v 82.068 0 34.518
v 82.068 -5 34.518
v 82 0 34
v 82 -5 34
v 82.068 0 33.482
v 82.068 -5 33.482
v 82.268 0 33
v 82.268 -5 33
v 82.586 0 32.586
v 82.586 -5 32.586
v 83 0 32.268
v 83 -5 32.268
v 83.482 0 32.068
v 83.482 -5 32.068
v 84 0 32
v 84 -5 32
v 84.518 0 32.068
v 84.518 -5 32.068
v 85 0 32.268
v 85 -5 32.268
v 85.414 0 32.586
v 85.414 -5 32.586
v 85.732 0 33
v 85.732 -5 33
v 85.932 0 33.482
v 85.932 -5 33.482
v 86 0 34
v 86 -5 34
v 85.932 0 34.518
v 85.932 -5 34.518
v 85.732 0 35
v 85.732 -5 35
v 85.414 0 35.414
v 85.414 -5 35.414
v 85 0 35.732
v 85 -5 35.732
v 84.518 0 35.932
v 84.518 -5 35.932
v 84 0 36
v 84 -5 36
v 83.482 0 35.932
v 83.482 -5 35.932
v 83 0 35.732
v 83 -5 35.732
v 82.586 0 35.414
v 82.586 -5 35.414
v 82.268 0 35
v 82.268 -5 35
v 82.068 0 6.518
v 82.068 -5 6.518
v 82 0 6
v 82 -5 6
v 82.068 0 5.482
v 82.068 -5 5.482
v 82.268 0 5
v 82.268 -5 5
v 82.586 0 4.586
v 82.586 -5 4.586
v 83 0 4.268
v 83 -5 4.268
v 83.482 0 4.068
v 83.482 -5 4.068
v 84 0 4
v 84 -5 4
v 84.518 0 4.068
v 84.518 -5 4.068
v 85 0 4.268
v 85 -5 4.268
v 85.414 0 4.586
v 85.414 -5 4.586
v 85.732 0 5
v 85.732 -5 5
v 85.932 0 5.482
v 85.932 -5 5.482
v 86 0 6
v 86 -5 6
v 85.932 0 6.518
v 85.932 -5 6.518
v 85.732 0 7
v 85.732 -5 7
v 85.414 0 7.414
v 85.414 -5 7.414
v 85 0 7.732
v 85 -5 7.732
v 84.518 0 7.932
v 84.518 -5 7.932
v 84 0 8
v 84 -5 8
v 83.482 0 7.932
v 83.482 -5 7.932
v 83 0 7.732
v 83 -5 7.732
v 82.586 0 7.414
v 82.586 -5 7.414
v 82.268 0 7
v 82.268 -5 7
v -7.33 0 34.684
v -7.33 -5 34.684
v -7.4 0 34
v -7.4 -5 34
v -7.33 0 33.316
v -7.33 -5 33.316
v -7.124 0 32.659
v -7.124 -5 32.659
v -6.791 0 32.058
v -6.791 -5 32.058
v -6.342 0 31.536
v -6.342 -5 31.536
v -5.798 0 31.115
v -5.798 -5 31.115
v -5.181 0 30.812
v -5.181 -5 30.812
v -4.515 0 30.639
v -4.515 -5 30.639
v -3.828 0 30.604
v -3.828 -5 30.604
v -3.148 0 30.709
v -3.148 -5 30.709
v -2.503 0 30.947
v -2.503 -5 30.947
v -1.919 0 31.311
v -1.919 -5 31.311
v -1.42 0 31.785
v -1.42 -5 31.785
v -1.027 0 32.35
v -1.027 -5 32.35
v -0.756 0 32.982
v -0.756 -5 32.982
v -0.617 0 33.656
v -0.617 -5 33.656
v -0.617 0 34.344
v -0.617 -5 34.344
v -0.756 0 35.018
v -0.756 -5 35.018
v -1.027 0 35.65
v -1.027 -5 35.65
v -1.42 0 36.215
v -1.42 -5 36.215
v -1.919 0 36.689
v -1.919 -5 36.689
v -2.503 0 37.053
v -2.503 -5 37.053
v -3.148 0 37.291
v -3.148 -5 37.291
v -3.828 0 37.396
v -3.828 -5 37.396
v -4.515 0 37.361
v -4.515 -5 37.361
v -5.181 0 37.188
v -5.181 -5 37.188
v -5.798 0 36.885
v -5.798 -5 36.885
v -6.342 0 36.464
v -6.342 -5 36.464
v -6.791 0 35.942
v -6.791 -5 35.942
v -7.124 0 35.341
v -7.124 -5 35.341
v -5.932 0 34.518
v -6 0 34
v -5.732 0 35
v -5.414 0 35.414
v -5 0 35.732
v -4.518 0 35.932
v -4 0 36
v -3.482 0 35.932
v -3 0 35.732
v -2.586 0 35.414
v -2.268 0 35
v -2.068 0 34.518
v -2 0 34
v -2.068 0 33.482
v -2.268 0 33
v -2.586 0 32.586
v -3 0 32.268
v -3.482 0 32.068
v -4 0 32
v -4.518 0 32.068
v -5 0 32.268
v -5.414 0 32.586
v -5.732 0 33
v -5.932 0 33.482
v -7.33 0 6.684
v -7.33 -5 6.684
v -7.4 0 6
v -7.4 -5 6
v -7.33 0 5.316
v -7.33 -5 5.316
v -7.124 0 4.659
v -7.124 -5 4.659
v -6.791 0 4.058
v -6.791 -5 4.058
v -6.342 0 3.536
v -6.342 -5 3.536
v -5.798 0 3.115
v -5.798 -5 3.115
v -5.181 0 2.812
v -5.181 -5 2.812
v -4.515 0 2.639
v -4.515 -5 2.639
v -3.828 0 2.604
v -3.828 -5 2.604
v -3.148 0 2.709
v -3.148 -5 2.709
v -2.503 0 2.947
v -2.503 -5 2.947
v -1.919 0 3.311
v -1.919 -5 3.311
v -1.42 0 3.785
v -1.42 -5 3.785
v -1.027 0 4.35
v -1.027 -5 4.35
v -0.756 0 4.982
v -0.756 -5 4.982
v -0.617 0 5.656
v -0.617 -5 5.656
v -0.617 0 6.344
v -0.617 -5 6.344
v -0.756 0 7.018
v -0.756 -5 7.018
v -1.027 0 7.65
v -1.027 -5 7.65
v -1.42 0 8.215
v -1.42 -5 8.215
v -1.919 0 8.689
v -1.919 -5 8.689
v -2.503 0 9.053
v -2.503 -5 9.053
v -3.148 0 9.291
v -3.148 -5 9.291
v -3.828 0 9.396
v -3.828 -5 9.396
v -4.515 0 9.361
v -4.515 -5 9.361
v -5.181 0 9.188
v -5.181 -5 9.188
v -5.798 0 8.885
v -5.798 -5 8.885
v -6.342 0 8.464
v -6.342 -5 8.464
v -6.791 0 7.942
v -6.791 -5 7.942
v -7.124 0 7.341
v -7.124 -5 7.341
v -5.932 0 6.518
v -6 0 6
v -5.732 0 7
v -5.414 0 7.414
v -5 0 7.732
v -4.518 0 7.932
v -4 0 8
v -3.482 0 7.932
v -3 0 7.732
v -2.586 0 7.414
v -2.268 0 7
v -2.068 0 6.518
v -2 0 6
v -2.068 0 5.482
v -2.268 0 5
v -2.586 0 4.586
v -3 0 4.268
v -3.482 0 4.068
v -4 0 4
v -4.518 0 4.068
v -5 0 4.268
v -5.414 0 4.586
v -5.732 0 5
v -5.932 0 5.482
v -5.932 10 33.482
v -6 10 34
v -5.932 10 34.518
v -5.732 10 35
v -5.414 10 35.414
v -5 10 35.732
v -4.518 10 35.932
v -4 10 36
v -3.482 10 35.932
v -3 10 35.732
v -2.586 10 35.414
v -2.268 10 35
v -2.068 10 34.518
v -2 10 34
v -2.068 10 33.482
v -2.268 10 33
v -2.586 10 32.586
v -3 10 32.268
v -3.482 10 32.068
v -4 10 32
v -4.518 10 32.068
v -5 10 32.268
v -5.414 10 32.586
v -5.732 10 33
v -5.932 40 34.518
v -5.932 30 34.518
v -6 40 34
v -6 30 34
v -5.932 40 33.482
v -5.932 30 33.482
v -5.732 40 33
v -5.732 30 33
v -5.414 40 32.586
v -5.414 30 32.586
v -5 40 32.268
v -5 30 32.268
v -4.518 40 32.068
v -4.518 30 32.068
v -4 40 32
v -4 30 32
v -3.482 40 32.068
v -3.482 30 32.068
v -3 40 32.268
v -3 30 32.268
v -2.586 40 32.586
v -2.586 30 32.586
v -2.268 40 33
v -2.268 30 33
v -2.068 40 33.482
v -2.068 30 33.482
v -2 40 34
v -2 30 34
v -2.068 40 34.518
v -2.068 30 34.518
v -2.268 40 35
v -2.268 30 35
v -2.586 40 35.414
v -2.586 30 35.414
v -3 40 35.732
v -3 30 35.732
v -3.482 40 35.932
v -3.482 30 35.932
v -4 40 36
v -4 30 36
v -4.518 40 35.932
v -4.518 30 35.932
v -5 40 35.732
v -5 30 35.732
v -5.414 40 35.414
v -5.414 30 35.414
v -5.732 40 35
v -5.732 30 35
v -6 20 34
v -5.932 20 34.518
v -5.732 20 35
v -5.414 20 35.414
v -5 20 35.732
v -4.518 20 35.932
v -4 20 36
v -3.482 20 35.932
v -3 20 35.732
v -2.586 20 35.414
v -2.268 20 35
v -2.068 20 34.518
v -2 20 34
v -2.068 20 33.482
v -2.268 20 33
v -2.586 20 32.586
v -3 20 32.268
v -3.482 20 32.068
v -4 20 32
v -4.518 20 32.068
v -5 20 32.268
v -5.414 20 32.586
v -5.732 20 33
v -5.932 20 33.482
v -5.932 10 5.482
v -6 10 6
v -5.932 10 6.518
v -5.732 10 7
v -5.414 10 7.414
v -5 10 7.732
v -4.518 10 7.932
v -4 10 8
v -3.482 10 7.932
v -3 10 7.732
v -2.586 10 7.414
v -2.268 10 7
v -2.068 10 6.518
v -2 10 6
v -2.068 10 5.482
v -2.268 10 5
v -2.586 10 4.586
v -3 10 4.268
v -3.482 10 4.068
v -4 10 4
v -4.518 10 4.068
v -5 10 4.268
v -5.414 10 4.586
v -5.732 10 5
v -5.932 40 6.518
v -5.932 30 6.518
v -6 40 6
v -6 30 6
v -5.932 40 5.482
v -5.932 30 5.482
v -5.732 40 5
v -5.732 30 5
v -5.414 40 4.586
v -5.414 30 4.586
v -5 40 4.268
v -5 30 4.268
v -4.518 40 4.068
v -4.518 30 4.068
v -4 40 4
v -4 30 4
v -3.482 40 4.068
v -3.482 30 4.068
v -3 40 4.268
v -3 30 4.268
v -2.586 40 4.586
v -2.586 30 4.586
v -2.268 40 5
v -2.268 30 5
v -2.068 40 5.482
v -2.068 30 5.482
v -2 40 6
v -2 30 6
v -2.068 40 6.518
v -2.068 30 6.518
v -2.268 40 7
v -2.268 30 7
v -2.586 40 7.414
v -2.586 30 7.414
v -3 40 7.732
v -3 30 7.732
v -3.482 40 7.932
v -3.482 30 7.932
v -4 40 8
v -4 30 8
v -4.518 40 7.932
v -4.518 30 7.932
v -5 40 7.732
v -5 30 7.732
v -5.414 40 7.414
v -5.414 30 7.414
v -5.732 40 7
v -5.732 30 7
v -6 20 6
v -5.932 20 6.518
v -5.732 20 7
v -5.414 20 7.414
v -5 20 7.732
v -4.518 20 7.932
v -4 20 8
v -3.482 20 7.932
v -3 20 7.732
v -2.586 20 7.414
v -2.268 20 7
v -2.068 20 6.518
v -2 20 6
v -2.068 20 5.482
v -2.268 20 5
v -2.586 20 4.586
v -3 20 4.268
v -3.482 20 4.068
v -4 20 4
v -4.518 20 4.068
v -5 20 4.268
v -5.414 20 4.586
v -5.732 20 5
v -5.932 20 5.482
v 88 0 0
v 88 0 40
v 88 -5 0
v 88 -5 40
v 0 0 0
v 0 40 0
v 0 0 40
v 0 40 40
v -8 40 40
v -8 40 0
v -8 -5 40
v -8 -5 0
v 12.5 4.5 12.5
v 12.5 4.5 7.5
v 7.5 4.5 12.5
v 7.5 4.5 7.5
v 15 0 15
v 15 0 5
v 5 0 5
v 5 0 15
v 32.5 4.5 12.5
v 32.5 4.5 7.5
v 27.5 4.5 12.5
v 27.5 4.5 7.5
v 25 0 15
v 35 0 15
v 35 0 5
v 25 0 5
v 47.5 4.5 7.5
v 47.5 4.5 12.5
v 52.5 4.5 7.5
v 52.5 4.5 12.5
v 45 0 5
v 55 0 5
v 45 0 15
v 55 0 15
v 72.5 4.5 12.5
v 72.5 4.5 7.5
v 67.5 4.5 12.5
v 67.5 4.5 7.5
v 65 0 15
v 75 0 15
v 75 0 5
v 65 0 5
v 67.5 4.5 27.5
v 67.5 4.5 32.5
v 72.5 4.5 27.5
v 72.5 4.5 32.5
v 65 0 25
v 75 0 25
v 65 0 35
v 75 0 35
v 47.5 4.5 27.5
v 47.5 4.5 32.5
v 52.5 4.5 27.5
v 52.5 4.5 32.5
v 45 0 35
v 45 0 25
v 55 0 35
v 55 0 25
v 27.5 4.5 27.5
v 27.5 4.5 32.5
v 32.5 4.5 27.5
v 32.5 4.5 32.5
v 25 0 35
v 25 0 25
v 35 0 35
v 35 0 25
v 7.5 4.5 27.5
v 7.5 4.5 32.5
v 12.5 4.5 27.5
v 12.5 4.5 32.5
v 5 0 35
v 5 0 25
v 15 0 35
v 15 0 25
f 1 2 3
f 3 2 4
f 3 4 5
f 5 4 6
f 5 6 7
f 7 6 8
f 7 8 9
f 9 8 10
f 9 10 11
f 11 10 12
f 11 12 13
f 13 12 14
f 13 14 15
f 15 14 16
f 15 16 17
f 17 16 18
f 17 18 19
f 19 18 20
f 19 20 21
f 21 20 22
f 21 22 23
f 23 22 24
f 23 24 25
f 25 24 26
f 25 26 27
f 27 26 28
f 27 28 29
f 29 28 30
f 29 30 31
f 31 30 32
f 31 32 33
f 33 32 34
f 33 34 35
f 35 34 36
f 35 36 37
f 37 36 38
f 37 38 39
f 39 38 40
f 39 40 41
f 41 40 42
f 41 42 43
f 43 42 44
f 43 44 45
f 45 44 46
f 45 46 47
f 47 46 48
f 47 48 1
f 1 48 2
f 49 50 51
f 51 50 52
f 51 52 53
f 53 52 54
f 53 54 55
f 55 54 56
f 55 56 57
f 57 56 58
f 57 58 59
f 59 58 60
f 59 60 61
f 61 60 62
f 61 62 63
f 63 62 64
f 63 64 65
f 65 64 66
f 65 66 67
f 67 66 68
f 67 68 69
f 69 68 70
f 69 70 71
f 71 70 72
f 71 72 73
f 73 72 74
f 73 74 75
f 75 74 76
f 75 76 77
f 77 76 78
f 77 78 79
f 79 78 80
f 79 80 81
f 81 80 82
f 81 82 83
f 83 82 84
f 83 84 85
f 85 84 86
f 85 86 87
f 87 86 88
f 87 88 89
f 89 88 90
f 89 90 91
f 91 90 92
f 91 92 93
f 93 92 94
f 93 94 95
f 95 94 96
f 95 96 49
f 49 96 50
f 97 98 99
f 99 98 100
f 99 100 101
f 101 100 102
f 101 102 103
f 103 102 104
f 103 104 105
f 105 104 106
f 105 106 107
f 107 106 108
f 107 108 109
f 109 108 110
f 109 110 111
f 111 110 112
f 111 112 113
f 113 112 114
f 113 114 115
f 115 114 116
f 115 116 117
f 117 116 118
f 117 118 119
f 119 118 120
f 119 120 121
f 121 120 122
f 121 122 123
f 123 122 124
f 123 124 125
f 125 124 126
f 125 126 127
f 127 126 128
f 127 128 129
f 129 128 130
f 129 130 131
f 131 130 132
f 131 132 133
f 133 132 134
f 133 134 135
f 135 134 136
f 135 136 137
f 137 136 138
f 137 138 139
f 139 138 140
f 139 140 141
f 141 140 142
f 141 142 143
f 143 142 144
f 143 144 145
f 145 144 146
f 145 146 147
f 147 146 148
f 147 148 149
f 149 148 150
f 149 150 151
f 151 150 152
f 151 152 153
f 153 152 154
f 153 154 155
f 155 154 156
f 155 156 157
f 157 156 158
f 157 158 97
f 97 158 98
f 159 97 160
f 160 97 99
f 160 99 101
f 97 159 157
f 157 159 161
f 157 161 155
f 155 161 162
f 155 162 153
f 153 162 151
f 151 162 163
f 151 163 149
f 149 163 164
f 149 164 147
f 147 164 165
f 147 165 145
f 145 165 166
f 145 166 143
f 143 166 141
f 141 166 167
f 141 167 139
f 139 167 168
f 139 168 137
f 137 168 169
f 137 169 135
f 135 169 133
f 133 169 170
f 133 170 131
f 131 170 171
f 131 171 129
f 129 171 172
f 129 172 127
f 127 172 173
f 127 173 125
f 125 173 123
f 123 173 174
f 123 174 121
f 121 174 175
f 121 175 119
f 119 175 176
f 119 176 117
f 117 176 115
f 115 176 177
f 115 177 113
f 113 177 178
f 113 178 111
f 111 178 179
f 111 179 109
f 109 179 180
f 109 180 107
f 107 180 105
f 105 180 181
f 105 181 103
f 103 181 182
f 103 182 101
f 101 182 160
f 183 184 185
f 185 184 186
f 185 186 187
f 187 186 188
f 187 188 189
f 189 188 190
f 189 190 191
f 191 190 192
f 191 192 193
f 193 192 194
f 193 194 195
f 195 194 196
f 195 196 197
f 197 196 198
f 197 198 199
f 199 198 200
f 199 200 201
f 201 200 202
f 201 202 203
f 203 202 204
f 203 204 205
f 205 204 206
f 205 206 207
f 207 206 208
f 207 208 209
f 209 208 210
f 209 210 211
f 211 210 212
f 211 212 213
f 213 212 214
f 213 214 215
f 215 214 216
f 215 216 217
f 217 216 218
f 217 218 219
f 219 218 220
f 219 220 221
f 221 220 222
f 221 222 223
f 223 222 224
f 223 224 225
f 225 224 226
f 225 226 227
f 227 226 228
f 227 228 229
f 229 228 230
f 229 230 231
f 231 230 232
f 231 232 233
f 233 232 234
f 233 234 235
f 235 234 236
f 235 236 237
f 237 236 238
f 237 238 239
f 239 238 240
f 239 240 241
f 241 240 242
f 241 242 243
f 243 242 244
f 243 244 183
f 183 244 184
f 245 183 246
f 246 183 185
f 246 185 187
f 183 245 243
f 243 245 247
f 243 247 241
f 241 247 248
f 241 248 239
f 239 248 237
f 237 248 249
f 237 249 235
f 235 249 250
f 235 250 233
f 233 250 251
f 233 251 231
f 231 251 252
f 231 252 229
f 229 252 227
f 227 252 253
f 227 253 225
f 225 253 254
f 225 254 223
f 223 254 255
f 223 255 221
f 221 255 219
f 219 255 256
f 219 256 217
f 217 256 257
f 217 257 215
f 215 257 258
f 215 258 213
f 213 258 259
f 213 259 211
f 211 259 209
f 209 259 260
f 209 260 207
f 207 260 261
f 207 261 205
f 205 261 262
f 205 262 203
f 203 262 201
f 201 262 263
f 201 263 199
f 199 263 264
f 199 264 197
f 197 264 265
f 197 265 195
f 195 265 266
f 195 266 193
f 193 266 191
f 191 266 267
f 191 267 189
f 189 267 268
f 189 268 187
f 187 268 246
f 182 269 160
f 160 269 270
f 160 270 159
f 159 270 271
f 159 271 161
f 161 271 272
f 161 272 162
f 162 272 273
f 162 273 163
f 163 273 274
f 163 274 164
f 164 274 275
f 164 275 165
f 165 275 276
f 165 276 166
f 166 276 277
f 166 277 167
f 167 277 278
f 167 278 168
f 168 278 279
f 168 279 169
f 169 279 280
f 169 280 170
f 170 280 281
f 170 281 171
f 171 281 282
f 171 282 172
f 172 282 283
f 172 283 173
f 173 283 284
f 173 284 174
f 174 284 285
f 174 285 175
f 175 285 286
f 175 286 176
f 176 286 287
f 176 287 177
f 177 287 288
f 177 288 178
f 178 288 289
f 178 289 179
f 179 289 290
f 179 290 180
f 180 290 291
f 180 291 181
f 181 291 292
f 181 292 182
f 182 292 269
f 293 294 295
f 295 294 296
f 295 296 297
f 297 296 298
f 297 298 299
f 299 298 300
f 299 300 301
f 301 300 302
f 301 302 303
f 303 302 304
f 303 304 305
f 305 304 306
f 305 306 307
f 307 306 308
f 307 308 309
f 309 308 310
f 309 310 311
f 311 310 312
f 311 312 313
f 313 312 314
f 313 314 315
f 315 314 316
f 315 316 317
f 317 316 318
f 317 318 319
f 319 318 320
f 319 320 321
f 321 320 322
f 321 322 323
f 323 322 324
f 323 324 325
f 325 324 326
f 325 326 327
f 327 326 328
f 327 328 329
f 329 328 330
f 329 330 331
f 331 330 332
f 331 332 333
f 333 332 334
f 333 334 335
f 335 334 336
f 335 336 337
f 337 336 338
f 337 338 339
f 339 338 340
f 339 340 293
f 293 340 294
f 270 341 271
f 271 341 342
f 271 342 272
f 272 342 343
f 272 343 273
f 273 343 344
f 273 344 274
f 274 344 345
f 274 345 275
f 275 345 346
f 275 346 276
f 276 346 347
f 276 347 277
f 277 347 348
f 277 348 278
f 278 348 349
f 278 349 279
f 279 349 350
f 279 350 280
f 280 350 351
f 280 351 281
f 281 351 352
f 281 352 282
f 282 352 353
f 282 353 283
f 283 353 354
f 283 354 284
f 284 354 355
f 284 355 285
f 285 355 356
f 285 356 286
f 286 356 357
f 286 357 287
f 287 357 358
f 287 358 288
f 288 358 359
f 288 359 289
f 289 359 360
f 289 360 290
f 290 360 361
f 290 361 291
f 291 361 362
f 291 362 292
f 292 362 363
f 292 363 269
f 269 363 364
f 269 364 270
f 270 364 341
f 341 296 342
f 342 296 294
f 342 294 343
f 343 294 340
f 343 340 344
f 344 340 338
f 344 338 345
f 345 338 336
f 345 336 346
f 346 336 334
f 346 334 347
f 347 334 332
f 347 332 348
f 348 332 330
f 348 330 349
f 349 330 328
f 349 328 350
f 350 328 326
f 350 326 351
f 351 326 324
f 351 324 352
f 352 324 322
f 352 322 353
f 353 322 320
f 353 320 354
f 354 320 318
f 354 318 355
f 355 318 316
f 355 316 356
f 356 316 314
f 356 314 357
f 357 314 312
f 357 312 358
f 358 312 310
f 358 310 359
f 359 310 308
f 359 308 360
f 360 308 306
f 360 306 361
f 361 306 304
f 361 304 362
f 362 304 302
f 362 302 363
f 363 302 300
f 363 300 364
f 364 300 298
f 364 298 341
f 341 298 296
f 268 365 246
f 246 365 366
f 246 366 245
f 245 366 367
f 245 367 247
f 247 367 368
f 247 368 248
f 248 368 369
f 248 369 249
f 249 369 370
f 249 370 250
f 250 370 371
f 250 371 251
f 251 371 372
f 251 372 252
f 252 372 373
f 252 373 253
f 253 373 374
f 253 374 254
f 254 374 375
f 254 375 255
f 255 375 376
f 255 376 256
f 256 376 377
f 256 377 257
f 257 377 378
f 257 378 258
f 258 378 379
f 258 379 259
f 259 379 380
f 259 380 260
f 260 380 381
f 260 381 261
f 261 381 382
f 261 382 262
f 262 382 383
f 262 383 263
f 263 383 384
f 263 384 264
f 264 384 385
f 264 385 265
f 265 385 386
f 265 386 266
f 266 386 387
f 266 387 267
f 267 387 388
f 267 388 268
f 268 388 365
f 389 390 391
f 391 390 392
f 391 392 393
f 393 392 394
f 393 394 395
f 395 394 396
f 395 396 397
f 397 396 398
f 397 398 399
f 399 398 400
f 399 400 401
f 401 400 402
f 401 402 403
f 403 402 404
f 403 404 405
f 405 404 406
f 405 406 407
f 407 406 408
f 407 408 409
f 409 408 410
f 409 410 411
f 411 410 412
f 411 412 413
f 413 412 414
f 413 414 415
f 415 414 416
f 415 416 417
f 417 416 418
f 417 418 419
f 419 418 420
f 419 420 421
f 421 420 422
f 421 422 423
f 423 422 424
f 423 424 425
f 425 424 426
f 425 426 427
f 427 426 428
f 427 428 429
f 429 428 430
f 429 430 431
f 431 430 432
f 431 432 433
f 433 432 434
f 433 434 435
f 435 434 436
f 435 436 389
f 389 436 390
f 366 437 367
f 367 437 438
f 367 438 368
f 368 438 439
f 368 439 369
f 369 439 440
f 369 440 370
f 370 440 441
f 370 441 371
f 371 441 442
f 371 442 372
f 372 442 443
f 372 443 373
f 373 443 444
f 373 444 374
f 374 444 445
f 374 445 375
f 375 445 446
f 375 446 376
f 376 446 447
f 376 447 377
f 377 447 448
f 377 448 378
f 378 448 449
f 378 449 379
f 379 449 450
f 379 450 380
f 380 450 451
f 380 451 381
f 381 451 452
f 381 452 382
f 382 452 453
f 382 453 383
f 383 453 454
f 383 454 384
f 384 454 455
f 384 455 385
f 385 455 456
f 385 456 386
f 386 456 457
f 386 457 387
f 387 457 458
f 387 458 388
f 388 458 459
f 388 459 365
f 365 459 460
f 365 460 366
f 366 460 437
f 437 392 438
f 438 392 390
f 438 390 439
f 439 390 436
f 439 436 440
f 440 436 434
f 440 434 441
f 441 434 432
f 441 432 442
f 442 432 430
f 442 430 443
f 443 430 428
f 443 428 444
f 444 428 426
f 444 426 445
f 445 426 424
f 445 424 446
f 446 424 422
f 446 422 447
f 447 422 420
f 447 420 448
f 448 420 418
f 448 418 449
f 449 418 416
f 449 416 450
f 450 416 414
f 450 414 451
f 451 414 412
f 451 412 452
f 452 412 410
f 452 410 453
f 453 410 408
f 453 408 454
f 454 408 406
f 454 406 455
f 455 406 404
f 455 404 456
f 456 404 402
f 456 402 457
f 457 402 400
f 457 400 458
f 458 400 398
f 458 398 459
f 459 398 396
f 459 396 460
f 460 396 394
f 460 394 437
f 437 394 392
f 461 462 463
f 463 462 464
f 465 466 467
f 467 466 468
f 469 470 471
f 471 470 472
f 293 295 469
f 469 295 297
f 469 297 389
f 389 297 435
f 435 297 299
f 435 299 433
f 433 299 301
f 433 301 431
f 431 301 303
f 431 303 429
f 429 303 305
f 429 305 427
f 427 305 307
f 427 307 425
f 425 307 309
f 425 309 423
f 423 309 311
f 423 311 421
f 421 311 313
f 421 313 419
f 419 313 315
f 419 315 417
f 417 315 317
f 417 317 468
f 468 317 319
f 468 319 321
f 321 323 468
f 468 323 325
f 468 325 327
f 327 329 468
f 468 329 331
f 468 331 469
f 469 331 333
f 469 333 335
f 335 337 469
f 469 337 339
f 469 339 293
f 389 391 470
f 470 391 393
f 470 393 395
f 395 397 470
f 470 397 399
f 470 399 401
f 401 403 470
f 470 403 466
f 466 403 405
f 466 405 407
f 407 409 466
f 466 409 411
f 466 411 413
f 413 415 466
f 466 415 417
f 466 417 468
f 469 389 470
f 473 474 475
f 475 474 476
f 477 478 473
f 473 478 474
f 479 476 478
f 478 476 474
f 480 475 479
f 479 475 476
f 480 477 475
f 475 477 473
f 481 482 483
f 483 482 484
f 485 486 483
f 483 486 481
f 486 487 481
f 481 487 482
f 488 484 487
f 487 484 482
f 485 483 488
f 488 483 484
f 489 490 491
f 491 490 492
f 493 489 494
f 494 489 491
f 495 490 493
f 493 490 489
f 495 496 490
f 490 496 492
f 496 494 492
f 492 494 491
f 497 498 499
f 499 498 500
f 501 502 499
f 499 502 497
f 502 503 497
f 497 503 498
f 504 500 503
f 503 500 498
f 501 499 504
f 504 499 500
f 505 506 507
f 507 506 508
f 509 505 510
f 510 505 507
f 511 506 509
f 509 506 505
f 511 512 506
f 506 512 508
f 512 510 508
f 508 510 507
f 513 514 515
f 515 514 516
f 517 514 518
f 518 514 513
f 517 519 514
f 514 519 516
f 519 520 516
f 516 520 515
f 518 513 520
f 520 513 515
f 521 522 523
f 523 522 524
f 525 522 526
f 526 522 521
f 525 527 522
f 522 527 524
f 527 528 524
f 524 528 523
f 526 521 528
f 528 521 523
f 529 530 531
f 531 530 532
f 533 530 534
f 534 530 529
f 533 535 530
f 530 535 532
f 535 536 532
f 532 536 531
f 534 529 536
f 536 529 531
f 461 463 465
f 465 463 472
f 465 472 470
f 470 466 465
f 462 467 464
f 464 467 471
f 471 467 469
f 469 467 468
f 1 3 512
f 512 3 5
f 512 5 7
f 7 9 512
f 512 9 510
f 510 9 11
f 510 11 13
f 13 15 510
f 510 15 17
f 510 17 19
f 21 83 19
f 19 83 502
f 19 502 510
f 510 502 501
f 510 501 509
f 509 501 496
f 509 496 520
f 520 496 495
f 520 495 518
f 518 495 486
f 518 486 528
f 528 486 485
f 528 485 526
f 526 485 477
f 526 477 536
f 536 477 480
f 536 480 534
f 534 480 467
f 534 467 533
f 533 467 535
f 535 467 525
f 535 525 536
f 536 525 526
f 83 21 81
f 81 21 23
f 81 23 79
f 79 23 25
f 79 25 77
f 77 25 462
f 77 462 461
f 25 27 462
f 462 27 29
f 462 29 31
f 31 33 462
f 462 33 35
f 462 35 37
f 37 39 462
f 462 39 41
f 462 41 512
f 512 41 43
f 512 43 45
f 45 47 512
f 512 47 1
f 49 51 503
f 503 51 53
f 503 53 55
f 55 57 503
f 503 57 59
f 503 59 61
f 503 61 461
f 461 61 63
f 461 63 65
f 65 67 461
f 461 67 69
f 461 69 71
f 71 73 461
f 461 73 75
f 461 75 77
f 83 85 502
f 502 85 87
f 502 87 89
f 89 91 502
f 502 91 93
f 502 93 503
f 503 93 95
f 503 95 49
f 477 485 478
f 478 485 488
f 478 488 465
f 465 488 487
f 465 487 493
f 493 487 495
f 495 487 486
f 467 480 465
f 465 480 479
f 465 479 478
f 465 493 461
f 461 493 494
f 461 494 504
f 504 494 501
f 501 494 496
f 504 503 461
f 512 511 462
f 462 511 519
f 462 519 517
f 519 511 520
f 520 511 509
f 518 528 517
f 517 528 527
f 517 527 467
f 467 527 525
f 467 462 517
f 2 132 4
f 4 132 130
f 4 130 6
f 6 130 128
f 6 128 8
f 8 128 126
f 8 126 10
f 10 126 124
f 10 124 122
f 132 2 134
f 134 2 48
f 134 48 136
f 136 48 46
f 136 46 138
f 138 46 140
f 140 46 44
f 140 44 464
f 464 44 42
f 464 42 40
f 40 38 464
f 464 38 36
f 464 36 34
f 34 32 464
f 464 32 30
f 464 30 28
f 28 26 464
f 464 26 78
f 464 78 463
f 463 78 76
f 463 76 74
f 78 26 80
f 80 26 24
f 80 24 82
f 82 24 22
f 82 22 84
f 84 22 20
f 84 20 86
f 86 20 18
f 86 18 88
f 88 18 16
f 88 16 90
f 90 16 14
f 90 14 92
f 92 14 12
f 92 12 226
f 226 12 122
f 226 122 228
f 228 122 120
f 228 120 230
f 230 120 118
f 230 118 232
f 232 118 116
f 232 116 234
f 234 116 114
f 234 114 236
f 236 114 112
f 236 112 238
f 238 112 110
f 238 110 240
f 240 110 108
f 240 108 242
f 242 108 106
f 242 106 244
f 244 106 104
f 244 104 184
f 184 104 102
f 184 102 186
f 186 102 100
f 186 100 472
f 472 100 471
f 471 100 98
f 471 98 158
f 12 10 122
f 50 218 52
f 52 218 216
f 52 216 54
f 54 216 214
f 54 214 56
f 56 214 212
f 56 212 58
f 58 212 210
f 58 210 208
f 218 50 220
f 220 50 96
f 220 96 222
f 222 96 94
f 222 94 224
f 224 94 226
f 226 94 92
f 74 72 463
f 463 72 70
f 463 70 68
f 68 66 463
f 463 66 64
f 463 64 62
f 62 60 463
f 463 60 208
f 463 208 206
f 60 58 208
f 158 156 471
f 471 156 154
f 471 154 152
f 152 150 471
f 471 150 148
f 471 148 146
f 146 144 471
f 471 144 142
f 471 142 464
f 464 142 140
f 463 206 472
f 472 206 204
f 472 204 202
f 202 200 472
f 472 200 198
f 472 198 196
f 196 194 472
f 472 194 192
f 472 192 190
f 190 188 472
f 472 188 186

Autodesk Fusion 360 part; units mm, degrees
sketch "baseplate" plane through (0, 0, 0) normal (0, 1, 0) x (1, 0, 0)
  line L0 (0, 0) -> (80, 0)
  line L1 (80, 0) -> (80, -40)
  line L2 (80, -40) -> (0, -40)
  line L3 (0, -40) -> (0, 0)
  dimension "d1" = 80
  dimension "d2" = 40
sketch "pryamid_base" plane through (0, 0, 0) normal (0, 1, 0) x (1, 0, 0)
  line L0 (5, -35) -> (15, -35)
  line L1 (15, -35) -> (15, -25)
  line L2 (15, -25) -> (5, -25)
  line L3 (5, -25) -> (5, -35)
  line L4 (35, -35) -> (35, -25)
  line L5 (35, -25) -> (25, -25)
  line L6 (25, -35) -> (35, -35)
  line L7 (25, -25) -> (25, -35)
  line L8 (75, -35) -> (75, -25)
  line L9 (45, -35) -> (55, -35)
  line L10 (55, -25) -> (45, -25)
  line L11 (65, -25) -> (65, -35)
  line L12 (65, -35) -> (75, -35)
  line L13 (55, -35) -> (55, -25)
  line L14 (45, -25) -> (45, -35)
  line L15 (75, -25) -> (65, -25)
  line L16 (35, -5) -> (25, -5)
  line L17 (35, -15) -> (35, -5)
  line L18 (15, -5) -> (5, -5)
  line L19 (25, -5) -> (25, -15)
  line L20 (45, -15) -> (55, -15)
  line L21 (55, -15) -> (55, -5)
  line L22 (5, -5) -> (5, -15)
  line L23 (45, -5) -> (45, -15)
  line L24 (75, -15) -> (75, -5)
  line L25 (65, -5) -> (65, -15)
  line L26 (75, -5) -> (65, -5)
  line L27 (55, -5) -> (45, -5)
  line L28 (65, -15) -> (75, -15)
  line L29 (5, -15) -> (15, -15)
  line L30 (15, -15) -> (15, -5)
  line L31 (25, -15) -> (35, -15)
  dimension "d3" = 10
  dimension "d4" = 10
  dimension "d5" = 10
  dimension "d6" = 10
  dimension "d7" = 10
  dimension "d8" = 10
  dimension "d9" = 10
  dimension "d10" = 10
  dimension "d11" = 10
  dimension "d12" = 10
  dimension "d13" = 10
  dimension "d14" = 10
  dimension "d15" = 10
  dimension "d16" = 10
  dimension "d17" = 10
  dimension "d18" = 10
ref_plane "WorkPlane1" through (0, 4.5, 0) normal (0, 1, 0) x (0, 0, 1)
sketch "pryamid_offsetplane" plane through (0, 4.5, 0) normal (0, 1, 0) x (1, 0, 0)
  line L0 (7.5, -32.5) -> (12.5, -32.5)
  line L1 (12.5, -32.5) -> (12.5, -27.5)
  line L2 (12.5, -27.5) -> (7.5, -27.5)
  line L3 (7.5, -27.5) -> (7.5, -32.5)
  line L4 (27.5, -27.5) -> (27.5, -32.5)
  line L5 (32.5, -32.5) -> (32.5, -27.5)
  line L6 (27.5, -32.5) -> (32.5, -32.5)
  line L7 (32.5, -27.5) -> (27.5, -27.5)
  line L8 (7.5, -27.5) -> (7.5, -32.5)
  line L9 (12.5, -32.5) -> (12.5, -27.5)
  line L10 (7.5, -32.5) -> (12.5, -32.5)
  line L11 (12.5, -27.5) -> (7.5, -27.5)
  line L12 (47.5, -27.5) -> (47.5, -32.5)
  line L13 (52.5, -32.5) -> (52.5, -27.5)
  line L14 (47.5, -32.5) -> (52.5, -32.5)
  line L15 (52.5, -27.5) -> (47.5, -27.5)
  line L16 (67.5, -27.5) -> (67.5, -32.5)
  line L17 (72.5, -32.5) -> (72.5, -27.5)
  line L18 (67.5, -32.5) -> (72.5, -32.5)
  line L19 (72.5, -27.5) -> (67.5, -27.5)
  line L20 (72.5, -12.5) -> (72.5, -7.5)
  line L21 (27.5, -7.5) -> (27.5, -12.5)
  line L22 (12.5, -12.5) -> (12.5, -7.5)
  line L23 (72.5, -7.5) -> (67.5, -7.5)
  line L24 (12.5, -7.5) -> (7.5, -7.5)
  line L25 (52.5, -12.5) -> (52.5, -7.5)
  line L26 (7.5, -7.5) -> (7.5, -12.5)
  line L27 (7.5, -12.5) -> (12.5, -12.5)
  line L28 (47.5, -12.5) -> (52.5, -12.5)
  line L29 (67.5, -7.5) -> (67.5, -12.5)
  line L30 (47.5, -7.5) -> (47.5, -12.5)
  line L31 (67.5, -12.5) -> (72.5, -12.5)
  line L32 (32.5, -7.5) -> (27.5, -7.5)
  line L33 (52.5, -7.5) -> (47.5, -7.5)
  line L34 (27.5, -12.5) -> (32.5, -12.5)
  line L35 (12.5, -7.5) -> (7.5, -7.5)
  line L36 (32.5, -12.5) -> (32.5, -7.5)
  line L37 (12.5, -12.5) -> (12.5, -7.5)
  line L38 (7.5, -12.5) -> (12.5, -12.5)
  line L39 (7.5, -7.5) -> (7.5, -12.5)
extrude "Extrude1" add sketch "baseplate" against normal blind 5
loft "Loft1" add profiles "pryamid_base", "pryamid_offsetplane" section 1 contours L0 L1 L2 L3 section 2 contours L0 L1 L2 L3 L8 L9 L10 L11
loft "Loft2" add profiles "pryamid_base", "pryamid_offsetplane" section 1 contours L4 L5 L6 L7 section 2 contours L4 L5 L6 L7
loft "Loft3" add profiles "pryamid_base", "pryamid_offsetplane" section 1 contours L9 L10 L13 L14 section 2 contours L12 L13 L14 L15
loft "Loft4" add profiles "pryamid_base", "pryamid_offsetplane" section 1 contours L8 L11 L12 L15 section 2 contours L16 L17 L18 L19
loft "Loft5" add profiles "pryamid_base", "pryamid_offsetplane" section 1 contours L24 L25 L26 L28 section 2 contours L20 L23 L29 L31
loft "Loft6" add profiles "pryamid_base", "pryamid_offsetplane" section 1 contours L20 L21 L23 L27 section 2 contours L25 L28 L30 L33
loft "Loft7" add profiles "pryamid_base", "pryamid_offsetplane" section 1 contours L16 L17 L19 L31 section 2 contours L21 L32 L34 L36
loft "Loft8" add profiles "pryamid_base", "pryamid_offsetplane" section 1 contours L18 L22 L29 L30 section 2 contours L22 L24 L26 L27 L35 L37 L38 L39
sketch "sidewall" plane through (0, 0, 0) normal (0, 1, 0) x (1, 0, 0)
  line L0 (0, 0) -> (-8, 0)
  line L1 (-8, 0) -> (-8, -40)
  line L2 (-8, -40) -> (0, -40)
  line L3 (0, -40) -> (0, 0)
  dimension "d22" = 8
extrude "Extrude2" add sketch "sidewall" along normal blind 40 and the other way blind 5
sketch "sidemount" plane through (0, 0, 0) normal (0, 1, 0) x (1, 0, 0)
  line L0 (80, 0) -> (88, 0)
  line L1 (88, 0) -> (88, -40)
  line L2 (88, -40) -> (80, -40)
  line L3 (80, -40) -> (80, 0)
extrude "Extrude3" add sketch "sidemount" against normal blind 5
sketch "holes" plane through (0, -5, 0) normal (0, -1, 0) x (1, 0, 0)
  line L0 (88, 40) -> (-8, 40)
  line L1 (-8, 40) -> (-8, 0)
  line L2 (-8, 0) -> (88, 0)
  line L3 (88, 0) -> (88, 40)
  line L4 (-8, 0) -> (-4, 0)
  line L5 (-8, 6) -> (-8, 0)
  line L6 (-4, 40) -> (-8, 40)
  line L7 (-8, 40) -> (-8, 34)
  circle A0 centre (-4, 34) radius 2
  circle A1 centre (-4, 6) radius 2
  circle A2 centre (-4, 34) radius 3.4
  circle A3 centre (-4, 6) radius 3.4
  dimension "d29" = 6
  dimension "d30" = 4
  dimension "d31" = 4
  dimension "d32" = 6.8
  dimension "d33" = 6.8
extrude "Extrude4" cut sketch "holes" against normal blind 51 contours A0 | A1
extrude "Extrude5" cut sketch "holes" against normal blind 5 contours A2 | A3
sketch "Sketch7" plane through (0, -5, 0) normal (0, -1, 0) x (1, 0, 0)
  circle A0 centre (84, 34) radius 2
  circle A1 centre (84, 6) radius 2
  circle A2 centre (84, 34) radius 3.4
  circle A3 centre (84, 6) radius 3.4
  dimension "d42" = 4
  dimension "d43" = 4
  dimension "d44" = 6.8
  dimension "d45" = 6.8
extrude "Extrude6" cut sketch "Sketch7" against normal blind 16 contours A0 | A1
